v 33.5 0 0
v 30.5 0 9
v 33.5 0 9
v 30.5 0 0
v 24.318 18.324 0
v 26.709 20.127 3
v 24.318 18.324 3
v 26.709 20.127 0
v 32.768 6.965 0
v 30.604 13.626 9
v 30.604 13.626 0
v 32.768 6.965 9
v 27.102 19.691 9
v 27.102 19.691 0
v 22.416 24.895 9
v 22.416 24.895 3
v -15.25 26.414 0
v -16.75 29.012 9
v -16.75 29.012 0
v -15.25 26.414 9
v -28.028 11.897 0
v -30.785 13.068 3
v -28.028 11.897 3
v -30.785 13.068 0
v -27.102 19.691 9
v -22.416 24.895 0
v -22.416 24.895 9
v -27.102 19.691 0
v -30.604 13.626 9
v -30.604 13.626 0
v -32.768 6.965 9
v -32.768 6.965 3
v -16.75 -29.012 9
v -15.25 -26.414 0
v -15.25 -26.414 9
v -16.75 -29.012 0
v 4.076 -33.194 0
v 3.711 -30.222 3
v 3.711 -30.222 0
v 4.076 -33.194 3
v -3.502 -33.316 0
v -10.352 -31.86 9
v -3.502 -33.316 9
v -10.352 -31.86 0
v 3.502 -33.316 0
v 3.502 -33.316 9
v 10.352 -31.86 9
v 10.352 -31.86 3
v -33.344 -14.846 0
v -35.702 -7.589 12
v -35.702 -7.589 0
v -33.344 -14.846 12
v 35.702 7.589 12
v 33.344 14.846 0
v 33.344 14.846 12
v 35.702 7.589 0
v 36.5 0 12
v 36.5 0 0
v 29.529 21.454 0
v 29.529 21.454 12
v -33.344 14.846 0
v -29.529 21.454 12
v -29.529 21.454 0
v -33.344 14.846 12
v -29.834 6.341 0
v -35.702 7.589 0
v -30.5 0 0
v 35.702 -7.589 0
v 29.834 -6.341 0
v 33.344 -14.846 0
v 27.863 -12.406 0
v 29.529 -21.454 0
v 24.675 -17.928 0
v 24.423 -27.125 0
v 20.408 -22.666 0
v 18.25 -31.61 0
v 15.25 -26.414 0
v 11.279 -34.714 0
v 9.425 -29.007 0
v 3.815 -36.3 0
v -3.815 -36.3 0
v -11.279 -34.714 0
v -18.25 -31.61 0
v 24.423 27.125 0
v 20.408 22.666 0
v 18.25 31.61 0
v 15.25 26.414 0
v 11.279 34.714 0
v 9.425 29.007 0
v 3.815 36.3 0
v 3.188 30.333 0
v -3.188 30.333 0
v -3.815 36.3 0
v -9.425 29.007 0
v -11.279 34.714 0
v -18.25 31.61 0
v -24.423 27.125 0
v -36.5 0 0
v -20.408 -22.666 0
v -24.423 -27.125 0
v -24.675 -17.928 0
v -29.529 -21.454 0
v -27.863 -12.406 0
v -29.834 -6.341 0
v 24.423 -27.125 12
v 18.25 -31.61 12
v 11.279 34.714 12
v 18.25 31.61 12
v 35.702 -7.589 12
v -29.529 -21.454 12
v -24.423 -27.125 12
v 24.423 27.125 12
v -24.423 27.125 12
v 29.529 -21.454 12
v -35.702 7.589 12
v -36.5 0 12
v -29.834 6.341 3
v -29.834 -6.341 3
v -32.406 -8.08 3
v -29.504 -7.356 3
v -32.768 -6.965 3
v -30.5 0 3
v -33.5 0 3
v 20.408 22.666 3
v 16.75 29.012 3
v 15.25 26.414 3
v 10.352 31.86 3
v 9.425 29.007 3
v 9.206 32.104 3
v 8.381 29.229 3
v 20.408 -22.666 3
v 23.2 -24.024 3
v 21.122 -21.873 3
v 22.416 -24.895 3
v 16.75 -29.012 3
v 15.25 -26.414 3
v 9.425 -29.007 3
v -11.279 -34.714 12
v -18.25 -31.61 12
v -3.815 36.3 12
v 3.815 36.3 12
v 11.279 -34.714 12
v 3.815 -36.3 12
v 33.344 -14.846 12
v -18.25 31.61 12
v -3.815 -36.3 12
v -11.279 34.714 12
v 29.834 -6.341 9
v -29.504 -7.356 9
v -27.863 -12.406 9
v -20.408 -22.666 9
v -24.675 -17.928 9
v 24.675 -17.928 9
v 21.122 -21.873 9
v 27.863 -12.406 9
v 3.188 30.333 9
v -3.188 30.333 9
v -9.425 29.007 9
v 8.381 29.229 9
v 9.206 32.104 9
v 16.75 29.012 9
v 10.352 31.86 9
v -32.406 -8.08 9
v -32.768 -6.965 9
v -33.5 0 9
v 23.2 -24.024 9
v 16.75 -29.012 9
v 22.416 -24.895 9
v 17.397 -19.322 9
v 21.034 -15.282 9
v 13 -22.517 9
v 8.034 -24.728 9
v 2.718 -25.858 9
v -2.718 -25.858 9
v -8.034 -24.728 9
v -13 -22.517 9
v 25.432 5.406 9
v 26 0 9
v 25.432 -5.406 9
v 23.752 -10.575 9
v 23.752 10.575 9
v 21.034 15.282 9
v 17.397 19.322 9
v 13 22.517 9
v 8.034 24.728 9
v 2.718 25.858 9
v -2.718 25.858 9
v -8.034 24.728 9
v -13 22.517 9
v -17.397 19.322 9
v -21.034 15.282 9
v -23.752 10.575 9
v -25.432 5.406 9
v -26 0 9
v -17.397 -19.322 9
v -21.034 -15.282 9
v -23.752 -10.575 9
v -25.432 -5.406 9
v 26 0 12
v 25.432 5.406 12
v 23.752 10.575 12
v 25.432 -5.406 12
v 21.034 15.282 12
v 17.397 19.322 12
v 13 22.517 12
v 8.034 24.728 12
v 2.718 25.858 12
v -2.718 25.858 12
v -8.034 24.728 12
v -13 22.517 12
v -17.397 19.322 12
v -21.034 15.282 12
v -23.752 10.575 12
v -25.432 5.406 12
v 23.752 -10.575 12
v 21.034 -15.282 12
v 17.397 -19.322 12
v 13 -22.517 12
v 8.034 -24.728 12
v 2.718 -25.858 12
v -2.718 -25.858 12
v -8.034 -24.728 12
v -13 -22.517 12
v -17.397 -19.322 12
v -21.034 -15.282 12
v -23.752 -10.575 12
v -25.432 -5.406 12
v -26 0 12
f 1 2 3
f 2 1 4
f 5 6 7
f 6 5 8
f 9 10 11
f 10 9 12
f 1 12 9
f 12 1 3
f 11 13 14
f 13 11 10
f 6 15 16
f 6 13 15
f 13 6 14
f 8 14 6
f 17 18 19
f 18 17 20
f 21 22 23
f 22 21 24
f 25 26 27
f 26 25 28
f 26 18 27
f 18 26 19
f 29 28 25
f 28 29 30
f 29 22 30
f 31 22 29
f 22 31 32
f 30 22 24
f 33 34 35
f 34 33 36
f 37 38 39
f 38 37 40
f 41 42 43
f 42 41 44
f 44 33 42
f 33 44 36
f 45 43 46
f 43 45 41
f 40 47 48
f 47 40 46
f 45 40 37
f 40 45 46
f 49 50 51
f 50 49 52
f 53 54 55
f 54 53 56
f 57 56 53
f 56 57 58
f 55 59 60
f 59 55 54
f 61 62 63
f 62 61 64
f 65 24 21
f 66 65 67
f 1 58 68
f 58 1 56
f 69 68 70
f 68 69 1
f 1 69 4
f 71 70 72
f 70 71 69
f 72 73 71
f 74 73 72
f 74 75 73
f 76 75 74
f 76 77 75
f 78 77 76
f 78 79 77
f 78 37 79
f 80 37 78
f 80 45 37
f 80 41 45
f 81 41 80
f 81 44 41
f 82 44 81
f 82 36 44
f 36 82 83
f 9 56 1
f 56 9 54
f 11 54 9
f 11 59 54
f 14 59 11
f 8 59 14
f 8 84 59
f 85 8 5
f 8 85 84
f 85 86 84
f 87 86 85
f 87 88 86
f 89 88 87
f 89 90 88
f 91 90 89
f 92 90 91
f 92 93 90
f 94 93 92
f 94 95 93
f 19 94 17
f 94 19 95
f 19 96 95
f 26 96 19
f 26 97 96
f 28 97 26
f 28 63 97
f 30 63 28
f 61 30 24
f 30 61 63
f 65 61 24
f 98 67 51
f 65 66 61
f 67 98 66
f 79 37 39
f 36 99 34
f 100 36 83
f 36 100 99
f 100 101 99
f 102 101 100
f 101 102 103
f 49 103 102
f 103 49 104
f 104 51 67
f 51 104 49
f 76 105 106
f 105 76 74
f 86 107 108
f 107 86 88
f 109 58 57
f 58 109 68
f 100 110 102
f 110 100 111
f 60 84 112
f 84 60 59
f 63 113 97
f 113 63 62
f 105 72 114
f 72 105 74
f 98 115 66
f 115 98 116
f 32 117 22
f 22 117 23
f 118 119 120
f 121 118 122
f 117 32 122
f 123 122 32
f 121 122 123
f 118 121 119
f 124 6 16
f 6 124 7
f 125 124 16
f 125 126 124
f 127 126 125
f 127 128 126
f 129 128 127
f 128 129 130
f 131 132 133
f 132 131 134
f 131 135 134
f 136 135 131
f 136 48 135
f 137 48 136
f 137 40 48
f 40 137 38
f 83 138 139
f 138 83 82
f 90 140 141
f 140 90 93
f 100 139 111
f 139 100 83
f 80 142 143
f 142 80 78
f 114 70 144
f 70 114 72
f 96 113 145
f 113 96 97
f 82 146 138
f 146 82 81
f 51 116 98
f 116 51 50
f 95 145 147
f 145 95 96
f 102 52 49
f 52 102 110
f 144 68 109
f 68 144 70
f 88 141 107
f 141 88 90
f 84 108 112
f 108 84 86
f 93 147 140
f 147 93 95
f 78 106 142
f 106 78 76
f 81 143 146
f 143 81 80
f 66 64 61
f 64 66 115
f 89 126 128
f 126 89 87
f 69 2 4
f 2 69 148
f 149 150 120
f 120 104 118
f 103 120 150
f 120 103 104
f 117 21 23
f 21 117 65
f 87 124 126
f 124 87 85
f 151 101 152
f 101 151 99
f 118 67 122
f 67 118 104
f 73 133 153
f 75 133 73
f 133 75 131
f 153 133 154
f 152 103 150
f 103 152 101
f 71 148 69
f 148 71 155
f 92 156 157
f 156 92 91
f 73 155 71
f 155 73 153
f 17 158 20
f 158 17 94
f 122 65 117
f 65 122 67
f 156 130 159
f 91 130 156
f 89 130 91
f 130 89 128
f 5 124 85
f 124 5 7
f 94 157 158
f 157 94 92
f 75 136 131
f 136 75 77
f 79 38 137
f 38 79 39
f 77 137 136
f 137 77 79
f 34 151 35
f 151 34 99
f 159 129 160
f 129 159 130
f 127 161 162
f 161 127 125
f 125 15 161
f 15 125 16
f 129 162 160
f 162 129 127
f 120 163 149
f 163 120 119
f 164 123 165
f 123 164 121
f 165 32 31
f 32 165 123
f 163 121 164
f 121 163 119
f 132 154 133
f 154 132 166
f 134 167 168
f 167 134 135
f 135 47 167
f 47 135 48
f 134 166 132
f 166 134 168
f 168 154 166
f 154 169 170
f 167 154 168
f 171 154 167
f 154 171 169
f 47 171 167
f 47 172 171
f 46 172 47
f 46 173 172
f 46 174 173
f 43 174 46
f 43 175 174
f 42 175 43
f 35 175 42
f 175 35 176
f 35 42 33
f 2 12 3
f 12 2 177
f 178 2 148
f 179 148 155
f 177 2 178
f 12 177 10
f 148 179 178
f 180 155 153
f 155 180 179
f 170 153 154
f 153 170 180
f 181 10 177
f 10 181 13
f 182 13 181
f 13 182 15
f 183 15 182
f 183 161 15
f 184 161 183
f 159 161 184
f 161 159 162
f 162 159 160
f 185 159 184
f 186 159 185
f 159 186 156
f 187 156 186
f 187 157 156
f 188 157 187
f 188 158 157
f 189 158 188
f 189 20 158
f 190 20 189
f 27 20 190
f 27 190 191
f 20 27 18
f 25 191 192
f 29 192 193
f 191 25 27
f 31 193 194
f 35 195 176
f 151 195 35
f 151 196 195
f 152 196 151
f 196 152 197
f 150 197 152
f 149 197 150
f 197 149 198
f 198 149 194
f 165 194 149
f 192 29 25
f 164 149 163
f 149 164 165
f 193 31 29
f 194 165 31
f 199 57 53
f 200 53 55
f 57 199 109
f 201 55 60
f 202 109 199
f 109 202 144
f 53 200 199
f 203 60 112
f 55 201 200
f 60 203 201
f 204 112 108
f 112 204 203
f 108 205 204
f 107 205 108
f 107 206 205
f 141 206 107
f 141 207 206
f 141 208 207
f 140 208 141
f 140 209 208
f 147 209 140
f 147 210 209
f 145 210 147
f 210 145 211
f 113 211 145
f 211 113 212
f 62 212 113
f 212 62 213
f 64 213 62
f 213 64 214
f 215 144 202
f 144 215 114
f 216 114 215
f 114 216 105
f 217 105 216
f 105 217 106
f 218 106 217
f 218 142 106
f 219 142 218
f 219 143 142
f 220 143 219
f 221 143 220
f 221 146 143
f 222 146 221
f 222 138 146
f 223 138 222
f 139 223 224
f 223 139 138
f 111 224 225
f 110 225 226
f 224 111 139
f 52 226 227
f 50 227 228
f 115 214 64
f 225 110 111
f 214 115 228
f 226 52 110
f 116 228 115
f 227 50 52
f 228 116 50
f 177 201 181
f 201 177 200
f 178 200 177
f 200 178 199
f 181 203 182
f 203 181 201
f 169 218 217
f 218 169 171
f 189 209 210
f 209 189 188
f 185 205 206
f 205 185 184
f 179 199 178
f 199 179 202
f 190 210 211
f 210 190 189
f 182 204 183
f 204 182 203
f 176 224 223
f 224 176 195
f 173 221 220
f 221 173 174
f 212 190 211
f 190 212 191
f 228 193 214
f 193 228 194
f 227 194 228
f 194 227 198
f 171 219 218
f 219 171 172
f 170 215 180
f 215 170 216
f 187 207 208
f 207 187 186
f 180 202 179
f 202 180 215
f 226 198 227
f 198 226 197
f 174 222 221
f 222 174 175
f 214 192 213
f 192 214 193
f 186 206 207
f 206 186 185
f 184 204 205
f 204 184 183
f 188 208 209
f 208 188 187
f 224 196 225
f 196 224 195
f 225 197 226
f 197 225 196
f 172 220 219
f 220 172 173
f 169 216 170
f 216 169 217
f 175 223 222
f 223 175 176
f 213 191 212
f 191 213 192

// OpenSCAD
// PieTest

/**
* @author: Marcel Jira

 * This module generates a pie slice in OpenSCAD. It is inspired by the
 * [dotscad](https://github.com/dotscad/dotscad)
 * project but uses a different approach.
 * I cannot say if this approach is worse or better.

 * @param float radius Radius of the pie
 * @param float angle  Angle (size) of the pie to slice
 * @param float height Height (thickness) of the pie
 * @param float spin   Angle to spin the slice on the Z axis
 */
module pie(radius, angle, height, spin=0) {
	// calculations
	ang = angle % 360;
	absAng = abs(ang);
	halfAng = absAng % 180;
	negAng = min(ang, 0);

	// submodules
	module pieCube() {
		translate([-radius - 1, 0, -1]) {
			cube([2*(radius + 1), radius + 1, height + 2]);
		}
	}

	module rotPieCube() {
		rotate([0, 0, halfAng]) {
			pieCube();
		}
	}

	if (angle != 0) {
		if (ang == 0) {
			cylinder(r=radius, h=height);
		} else {
			rotate([0, 0, spin + negAng]) {
				intersection() {
					cylinder(r=radius, h=height);
					if (absAng < 180) {
						difference() {
							pieCube();
							rotPieCube();
						}
					} else {
						union() {
							pieCube();
							rotPieCube();
						}
					}
				}
			}
		}
	}
}

/**
 * When used as a module (statement "use <pie.scad>") the example below will not
 * render. If you run this file alone, it will :)
 */
holderDiam=61;
clampDepth=3;
clampWidth=3;
notchDeg = 37;

holderRad = holderDiam / 2;
notchSize = holderRad + clampWidth;
cylSize = notchSize + clampWidth;

union() {
    // pass through
    difference() {
        cylinder(clampDepth, cylSize, cylSize);

        translate([0, 0, -clampDepth]) {
            cylinder(clampDepth * 3, holderRad, holderRad);
        }

        for(ang=[0:3]) {
            difference() {
                translate([0, 0, -clampDepth]) {
                    pie(notchSize, notchDeg, clampDepth * 3, spin=ang*360/3);
                }
            }
        }
    }
    
    // holder
    translate([0, 0, clampDepth]) {
        difference() {
            cylinder(clampDepth * 2, cylSize, cylSize);

            translate([0, 0, -clampDepth]) {
                cylinder(clampDepth * 4, holderRad, holderRad);
            }

            for(ang=[0:3]) {
                difference() {
                    translate([0, 0, -clampDepth]) {
                        pie(notchSize, notchDeg*2, clampDepth * 4, spin=ang*360/3);
                    }
                }
            }
        }
    }
    
    translate([0, 0, clampDepth * 3]) {
        difference() {
            cylinder(clampDepth, cylSize, cylSize);

            translate([0, 0, -1]) {
                cylinder(clampDepth + 2, 26, 26);
            }
        }
    }
}
